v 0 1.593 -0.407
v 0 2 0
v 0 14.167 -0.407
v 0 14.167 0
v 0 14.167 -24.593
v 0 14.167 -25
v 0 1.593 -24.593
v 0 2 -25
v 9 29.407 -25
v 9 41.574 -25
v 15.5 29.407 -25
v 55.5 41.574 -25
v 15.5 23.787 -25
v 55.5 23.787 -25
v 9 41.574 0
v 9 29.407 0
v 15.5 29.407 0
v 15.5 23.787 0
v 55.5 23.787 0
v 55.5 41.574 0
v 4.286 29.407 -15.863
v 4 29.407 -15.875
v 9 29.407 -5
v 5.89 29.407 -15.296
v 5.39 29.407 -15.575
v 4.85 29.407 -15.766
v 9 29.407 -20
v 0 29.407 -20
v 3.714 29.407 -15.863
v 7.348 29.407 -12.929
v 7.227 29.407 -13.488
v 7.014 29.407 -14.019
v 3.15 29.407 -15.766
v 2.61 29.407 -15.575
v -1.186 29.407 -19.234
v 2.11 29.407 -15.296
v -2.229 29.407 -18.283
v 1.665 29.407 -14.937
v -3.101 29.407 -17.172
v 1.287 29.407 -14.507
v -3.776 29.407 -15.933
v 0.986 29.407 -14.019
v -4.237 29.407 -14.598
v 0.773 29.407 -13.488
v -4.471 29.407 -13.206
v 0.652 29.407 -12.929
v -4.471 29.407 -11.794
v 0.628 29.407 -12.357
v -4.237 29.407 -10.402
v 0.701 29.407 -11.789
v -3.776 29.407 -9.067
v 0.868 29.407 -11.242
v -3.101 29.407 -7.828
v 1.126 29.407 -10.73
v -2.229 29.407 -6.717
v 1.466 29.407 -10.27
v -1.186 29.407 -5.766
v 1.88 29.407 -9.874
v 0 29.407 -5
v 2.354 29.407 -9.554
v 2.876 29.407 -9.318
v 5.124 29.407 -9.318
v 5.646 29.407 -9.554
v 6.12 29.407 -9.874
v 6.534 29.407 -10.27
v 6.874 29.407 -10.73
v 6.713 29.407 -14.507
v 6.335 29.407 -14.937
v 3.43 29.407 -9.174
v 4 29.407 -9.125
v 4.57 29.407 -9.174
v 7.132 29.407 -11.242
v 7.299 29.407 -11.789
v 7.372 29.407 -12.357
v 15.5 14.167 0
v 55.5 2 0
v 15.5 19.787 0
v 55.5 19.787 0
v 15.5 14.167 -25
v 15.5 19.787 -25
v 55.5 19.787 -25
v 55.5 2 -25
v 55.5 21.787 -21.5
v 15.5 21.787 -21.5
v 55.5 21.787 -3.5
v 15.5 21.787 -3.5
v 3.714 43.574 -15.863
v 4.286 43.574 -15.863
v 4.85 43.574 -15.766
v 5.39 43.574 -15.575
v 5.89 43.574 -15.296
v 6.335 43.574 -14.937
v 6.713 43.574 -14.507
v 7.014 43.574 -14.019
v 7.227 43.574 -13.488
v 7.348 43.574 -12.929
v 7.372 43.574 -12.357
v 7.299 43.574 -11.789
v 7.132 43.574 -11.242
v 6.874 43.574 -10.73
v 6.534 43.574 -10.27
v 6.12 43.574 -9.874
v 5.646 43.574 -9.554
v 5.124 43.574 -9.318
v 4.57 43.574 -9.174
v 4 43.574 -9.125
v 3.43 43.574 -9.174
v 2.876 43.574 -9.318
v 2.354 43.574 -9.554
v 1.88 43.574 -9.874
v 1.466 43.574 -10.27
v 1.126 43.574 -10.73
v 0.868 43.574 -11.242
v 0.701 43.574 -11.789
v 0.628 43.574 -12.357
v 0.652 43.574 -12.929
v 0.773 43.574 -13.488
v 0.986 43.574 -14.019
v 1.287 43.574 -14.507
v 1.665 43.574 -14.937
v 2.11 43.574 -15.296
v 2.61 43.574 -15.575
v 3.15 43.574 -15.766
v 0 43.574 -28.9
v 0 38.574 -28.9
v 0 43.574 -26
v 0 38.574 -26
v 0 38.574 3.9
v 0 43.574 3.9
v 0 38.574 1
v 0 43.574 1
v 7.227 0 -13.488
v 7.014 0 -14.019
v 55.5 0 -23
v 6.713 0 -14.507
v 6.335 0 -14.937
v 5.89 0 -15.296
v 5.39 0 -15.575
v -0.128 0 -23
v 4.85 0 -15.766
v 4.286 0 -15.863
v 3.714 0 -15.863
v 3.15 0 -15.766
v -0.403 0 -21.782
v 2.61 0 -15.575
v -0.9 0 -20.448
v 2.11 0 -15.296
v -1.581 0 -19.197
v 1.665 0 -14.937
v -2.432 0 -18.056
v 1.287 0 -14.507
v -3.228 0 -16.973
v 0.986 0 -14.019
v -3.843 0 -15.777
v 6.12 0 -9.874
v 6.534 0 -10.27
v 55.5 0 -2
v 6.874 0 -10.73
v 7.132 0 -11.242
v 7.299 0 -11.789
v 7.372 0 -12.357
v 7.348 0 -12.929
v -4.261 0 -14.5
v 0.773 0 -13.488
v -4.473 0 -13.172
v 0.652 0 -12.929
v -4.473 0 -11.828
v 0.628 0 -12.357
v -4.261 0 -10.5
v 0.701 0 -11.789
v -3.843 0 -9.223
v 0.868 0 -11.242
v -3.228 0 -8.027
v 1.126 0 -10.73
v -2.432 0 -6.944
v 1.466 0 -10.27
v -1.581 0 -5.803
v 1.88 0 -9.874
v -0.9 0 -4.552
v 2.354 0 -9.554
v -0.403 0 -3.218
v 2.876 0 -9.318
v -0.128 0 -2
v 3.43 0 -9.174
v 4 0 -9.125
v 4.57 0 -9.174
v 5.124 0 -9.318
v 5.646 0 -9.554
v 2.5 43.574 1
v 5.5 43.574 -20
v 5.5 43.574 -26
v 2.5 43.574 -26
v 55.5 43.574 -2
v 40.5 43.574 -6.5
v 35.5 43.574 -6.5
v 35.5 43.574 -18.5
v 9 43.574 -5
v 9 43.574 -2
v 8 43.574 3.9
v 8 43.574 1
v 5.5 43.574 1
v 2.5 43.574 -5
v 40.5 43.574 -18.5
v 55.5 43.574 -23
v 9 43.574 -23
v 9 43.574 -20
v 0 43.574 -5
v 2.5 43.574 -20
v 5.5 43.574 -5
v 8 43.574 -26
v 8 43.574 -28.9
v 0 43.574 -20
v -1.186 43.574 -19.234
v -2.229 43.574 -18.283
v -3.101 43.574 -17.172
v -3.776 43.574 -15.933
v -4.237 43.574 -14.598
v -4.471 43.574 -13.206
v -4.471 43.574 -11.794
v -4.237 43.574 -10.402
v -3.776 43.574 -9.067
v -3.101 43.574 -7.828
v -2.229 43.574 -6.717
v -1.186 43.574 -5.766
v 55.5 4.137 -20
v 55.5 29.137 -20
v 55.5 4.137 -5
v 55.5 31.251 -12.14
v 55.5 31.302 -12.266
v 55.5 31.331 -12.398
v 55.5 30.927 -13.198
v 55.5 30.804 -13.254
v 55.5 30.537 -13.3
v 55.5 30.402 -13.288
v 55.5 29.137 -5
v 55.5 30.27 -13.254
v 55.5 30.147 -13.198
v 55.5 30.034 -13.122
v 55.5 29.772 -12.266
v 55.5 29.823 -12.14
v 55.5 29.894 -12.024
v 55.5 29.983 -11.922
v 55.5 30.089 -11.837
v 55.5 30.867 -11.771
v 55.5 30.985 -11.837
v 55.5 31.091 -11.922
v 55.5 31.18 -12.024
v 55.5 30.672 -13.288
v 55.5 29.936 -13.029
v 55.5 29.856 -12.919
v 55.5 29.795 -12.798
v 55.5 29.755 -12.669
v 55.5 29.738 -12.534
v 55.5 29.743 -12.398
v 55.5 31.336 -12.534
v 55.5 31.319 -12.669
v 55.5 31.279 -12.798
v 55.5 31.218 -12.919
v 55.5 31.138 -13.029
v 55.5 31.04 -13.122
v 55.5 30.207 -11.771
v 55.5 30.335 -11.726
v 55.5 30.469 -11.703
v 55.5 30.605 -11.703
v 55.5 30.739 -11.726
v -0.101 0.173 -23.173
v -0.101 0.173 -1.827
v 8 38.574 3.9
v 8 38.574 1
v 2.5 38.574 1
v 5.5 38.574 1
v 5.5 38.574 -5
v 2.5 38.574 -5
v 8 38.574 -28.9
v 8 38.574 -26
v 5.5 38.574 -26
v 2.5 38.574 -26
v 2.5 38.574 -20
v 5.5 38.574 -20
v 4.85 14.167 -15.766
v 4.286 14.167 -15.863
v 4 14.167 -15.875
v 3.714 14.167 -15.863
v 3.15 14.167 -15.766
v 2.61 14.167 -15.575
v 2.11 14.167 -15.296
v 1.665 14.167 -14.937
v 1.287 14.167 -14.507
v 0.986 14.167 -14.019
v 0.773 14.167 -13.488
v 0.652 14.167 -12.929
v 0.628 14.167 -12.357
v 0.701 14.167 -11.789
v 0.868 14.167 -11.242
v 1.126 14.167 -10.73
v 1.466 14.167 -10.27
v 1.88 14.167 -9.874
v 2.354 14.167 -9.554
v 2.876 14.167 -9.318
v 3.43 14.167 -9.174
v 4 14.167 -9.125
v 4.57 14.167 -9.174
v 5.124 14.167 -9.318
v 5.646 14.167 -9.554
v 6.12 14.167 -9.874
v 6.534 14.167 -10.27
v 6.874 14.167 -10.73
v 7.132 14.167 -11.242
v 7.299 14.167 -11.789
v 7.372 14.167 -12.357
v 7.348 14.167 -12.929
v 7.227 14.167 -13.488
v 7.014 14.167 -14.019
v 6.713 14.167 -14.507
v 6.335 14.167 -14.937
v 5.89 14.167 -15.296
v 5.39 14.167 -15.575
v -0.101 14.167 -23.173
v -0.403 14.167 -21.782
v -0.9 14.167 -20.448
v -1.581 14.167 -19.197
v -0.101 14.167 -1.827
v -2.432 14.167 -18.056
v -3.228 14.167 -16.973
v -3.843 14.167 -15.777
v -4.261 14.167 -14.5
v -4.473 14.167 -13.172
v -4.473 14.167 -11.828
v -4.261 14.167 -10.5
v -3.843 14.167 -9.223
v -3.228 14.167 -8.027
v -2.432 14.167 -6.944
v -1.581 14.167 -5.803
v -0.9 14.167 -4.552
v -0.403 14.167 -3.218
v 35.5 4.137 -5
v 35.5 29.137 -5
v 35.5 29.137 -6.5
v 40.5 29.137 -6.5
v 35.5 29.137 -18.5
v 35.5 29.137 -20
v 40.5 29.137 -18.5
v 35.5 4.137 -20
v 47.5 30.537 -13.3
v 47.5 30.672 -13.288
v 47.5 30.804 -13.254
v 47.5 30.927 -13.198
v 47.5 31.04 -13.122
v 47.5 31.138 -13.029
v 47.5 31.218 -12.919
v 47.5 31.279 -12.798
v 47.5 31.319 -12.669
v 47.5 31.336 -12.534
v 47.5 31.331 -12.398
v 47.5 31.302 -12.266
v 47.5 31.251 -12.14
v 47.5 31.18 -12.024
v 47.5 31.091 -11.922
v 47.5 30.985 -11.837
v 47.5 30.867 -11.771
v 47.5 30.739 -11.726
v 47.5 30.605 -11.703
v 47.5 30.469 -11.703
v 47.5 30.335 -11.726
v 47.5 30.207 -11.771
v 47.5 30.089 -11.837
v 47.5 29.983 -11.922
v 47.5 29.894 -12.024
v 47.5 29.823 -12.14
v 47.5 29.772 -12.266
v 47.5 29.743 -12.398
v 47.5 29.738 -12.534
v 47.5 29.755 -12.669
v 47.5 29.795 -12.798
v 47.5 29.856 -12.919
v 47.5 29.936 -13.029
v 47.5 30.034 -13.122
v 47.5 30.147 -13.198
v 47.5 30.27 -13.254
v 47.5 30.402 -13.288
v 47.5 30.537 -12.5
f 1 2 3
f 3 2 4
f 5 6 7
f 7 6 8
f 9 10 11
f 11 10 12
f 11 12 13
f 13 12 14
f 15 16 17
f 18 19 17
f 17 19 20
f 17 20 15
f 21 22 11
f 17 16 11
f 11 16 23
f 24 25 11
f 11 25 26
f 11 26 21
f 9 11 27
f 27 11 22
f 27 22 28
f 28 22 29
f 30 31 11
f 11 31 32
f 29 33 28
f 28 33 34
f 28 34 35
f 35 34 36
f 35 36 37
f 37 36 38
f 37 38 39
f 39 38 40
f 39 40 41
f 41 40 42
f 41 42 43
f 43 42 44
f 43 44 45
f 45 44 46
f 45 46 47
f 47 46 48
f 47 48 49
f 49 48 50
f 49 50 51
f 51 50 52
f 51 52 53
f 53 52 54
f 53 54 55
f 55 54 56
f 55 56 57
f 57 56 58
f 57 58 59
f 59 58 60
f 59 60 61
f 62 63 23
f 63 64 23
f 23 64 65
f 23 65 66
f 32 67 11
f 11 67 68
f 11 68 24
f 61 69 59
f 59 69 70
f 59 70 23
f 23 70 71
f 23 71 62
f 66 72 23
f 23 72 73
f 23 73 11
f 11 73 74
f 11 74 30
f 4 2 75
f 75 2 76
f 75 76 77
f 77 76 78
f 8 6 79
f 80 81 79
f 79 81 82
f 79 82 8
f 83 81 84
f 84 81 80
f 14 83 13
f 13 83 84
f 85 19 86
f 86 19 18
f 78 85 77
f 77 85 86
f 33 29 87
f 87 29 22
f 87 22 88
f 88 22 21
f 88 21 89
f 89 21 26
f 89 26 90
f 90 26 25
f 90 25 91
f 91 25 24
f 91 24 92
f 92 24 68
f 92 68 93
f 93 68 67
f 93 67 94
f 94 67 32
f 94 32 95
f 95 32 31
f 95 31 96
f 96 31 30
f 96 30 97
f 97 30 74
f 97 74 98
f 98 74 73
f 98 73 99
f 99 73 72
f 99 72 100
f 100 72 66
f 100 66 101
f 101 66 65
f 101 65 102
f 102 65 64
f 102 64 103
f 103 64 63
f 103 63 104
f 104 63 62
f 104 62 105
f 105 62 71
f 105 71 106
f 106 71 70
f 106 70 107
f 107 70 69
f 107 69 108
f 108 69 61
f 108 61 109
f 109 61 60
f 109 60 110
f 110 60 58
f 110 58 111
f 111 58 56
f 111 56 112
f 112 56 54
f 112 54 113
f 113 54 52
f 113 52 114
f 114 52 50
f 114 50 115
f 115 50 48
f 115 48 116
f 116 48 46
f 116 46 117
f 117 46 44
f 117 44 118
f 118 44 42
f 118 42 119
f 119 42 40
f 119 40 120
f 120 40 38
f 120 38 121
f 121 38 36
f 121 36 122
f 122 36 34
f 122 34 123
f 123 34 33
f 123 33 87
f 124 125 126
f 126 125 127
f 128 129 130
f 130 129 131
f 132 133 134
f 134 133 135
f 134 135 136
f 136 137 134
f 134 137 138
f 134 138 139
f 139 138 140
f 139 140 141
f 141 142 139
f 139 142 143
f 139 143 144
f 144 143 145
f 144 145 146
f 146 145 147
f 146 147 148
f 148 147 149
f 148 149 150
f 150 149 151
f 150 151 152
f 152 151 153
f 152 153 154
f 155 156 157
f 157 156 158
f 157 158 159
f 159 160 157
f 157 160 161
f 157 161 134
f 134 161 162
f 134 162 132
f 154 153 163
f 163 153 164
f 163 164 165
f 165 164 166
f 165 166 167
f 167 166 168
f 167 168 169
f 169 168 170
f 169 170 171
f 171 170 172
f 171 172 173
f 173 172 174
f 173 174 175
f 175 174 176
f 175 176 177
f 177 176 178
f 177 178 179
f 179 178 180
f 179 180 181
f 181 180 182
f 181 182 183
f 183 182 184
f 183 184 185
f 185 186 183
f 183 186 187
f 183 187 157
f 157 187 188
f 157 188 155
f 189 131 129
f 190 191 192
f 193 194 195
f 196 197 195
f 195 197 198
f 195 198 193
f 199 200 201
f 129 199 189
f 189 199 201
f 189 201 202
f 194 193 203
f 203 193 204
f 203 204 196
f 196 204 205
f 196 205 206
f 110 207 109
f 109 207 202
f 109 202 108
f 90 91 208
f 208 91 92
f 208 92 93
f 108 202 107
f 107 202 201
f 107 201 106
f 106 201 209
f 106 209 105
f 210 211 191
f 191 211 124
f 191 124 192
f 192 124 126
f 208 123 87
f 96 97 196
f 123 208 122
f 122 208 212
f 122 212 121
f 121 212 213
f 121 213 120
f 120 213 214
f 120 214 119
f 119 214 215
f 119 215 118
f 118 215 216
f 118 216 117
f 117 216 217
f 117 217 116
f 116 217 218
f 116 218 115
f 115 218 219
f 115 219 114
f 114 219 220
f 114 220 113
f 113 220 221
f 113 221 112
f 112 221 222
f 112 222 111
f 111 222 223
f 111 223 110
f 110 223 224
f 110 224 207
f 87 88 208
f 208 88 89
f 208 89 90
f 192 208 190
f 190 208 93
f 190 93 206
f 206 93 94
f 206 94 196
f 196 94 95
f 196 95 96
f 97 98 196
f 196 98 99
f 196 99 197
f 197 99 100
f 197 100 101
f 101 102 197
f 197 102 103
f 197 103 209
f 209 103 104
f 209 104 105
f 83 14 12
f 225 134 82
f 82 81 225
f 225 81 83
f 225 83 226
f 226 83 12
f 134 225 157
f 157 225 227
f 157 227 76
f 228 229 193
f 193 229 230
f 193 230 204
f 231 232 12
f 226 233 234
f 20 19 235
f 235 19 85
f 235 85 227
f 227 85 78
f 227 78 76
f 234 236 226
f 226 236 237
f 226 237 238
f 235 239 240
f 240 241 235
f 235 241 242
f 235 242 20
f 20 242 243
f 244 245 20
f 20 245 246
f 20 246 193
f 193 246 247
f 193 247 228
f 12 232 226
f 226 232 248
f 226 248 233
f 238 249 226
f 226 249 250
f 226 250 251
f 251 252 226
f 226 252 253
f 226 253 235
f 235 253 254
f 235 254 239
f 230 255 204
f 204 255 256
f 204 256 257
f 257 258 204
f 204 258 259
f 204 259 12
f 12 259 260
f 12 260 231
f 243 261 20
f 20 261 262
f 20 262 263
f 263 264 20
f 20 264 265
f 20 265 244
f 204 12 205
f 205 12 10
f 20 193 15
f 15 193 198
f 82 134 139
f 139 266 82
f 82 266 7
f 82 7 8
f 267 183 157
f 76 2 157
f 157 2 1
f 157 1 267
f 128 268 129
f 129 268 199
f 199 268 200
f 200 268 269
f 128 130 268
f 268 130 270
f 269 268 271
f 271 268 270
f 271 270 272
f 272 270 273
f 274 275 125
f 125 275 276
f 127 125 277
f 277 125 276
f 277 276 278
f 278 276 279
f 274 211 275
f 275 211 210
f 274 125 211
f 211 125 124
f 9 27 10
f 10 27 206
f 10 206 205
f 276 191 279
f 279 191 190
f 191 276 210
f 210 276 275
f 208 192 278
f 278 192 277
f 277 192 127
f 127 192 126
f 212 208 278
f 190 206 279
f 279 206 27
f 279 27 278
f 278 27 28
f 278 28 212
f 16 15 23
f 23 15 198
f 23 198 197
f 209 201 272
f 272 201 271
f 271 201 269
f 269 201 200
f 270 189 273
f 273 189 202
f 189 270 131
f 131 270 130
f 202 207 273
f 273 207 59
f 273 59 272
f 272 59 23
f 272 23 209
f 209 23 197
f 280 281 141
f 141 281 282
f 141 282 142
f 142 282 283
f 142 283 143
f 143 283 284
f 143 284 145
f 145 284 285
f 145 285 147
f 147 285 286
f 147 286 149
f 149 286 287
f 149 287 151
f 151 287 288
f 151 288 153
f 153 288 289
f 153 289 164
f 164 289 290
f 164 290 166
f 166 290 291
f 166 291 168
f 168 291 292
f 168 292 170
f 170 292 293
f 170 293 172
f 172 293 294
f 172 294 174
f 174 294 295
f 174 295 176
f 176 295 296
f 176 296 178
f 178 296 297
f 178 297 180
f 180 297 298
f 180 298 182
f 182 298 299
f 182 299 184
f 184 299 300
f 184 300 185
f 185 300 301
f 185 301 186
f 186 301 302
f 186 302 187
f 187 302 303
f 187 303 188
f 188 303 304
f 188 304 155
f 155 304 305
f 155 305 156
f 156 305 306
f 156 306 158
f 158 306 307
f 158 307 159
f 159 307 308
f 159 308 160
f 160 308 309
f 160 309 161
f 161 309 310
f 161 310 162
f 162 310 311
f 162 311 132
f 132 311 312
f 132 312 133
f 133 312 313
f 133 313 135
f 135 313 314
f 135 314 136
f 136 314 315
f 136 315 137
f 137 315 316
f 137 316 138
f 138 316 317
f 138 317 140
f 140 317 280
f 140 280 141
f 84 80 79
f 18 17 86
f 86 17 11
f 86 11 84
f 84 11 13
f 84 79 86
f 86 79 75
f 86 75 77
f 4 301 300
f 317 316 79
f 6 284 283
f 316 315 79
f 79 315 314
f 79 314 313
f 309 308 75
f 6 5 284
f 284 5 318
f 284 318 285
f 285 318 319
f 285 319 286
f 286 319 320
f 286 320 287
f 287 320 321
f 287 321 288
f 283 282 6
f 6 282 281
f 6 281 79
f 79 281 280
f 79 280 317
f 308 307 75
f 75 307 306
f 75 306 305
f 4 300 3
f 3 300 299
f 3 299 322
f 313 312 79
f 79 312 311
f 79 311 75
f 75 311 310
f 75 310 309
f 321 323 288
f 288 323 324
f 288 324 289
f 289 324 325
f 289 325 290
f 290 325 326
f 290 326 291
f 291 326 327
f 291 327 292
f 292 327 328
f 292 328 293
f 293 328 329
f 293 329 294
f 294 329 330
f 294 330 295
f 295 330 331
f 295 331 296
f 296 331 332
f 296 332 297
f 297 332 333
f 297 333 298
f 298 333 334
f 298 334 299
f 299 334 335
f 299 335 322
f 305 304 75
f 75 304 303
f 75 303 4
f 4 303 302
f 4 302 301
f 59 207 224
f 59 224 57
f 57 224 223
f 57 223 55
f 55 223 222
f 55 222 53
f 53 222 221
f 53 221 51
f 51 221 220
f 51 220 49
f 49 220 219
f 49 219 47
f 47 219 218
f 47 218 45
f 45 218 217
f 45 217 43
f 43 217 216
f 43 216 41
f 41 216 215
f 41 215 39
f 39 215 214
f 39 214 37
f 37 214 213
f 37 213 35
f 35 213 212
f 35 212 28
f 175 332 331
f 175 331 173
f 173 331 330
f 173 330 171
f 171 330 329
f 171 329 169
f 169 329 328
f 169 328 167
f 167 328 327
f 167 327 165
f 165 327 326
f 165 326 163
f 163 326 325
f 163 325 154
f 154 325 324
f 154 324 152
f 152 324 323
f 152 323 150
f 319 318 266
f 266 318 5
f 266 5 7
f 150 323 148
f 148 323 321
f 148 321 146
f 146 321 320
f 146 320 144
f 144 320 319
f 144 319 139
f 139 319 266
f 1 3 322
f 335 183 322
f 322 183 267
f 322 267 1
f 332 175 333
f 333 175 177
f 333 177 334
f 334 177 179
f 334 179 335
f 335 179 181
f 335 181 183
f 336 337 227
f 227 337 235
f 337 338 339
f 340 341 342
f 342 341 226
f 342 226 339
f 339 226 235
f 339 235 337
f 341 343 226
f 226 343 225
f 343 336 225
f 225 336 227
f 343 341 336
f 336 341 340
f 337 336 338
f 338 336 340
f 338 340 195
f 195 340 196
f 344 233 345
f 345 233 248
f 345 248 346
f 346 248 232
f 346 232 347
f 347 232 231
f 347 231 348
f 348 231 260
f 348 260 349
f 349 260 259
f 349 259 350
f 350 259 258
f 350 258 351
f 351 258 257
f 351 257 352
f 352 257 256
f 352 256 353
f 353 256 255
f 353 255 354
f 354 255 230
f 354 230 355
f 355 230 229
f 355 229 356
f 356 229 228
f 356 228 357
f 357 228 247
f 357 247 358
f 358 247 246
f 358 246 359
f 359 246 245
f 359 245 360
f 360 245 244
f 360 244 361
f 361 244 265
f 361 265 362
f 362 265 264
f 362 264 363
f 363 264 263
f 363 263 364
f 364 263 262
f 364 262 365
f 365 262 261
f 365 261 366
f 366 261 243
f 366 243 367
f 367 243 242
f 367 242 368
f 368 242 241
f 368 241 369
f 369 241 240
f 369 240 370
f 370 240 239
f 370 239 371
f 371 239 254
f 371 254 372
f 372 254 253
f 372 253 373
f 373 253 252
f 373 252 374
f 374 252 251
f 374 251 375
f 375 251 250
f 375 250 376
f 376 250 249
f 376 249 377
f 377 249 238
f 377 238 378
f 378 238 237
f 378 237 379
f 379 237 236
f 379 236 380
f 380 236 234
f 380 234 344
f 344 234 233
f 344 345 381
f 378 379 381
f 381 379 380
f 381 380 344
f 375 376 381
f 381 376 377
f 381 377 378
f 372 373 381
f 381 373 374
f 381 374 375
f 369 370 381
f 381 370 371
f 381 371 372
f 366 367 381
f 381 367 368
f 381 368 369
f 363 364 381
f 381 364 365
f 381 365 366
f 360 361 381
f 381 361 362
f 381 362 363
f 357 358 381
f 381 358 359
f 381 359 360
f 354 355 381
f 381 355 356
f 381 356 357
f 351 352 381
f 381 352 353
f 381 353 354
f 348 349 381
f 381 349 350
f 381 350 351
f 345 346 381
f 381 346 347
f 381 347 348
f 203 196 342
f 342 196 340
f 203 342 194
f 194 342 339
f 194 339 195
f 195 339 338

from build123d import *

# Parameters (mm, degrees)
BOSS_EXTRUDE1_DEPTH = 55.5
CHAMFER1_SIZE       = 2
SKETCH4_W           = 8
SKETCH4_H           = 32.8
BOSS_EXTRUDE2_DEPTH = 5
SKETCH7_W           = 3.5
SKETCH7_H           = 6
CUT_EXTRUDE5_DEPTH  = 10
SKETCH5_R           = 3.375
CUT_EXTRUDE3_DEPTH  = 77.250596562
SKETCH6_R           = 3.375
CUT_EXTRUDE4_DEPTH  = 7.62
SKETCH8_W           = 9
SKETCH8_H           = 5
CUT_EXTRUDE6_DEPTH  = 9.167
BOSS_EXTRUDE3_DEPTH = 14.167
BOSS_EXTRUDE4_START = -29.407
BOSS_EXTRUDE4_DEPTH = 14.167
FILLET1_R           = 10
SKETCH10_W          = 15
SKETCH10_H          = 25
CUT_EXTRUDE7_DEPTH  = 20
SKETCH11_R          = 0.8
CUT_EXTRUDE8_DEPTH  = 8
SKETCH12_W          = 5
SKETCH12_H          = 12
CUT_EXTRUDE9_DEPTH  = 14.437


with BuildPart() as part:
    # Sketch1 → Boss-Extrude1 (new body)
    with BuildSketch(Plane(origin=(0, 0, 0), x_dir=(0, 0, -1), z_dir=(1, 0, 0))):
        Polygon((0, 0), (25, 0), (25, 19.787), (21.5, 21.787), (25, 23.787), (25, 43.574), (0, 43.574), (0, 23.787), (3.5, 21.787), (0, 19.787), align=None)
    extrude(amount=BOSS_EXTRUDE1_DEPTH)

    # Chamfer1
    chamfer1_edges = [part.edges().sort_by_distance(p)[0] for p in [
        (27.75, 43.574, 0),
        (27.75, 43.574, -25),
        (27.75, 0, -25),
        (27.75, 0, 0),
    ]]
    chamfer(chamfer1_edges, length=CHAMFER1_SIZE)

    # Sketch4 → Boss-Extrude2 (add)
    with BuildSketch(Plane(origin=(0, 43.574, 0), x_dir=(1, 0, 0), z_dir=(0, 1, 0))):
        with Locations((4, 12.5)):
            Rectangle(SKETCH4_W, SKETCH4_H)
    extrude(amount=-BOSS_EXTRUDE2_DEPTH)

    # Sketch7 → Cut-Extrude5 (cut)
    with BuildSketch(Plane(origin=(0, 43.574, 0), x_dir=(1, 0, 0), z_dir=(0, 1, 0))):
        with Locations((7.25, 2)):
            Rectangle(SKETCH7_W, SKETCH7_H)
        with Locations((7.25, 23)):
            Rectangle(SKETCH7_W, SKETCH7_H)
        with Locations((0.75, 2)):
            Rectangle(SKETCH7_W, SKETCH7_H)
        with Locations((0.75, 23)):
            Rectangle(SKETCH7_W, SKETCH7_H)
    extrude(amount=-CUT_EXTRUDE5_DEPTH, mode=Mode.SUBTRACT)

    # Sketch5 → Cut-Extrude3 (cut, through all)
    with BuildSketch(Plane(origin=(0, 43.574, 0), x_dir=(1, 0, 0), z_dir=(0, 1, 0))):
        with Locations(Location((4, 12.5, 0), (0, 0, 270))):
            Circle(SKETCH5_R)
    extrude(amount=-CUT_EXTRUDE3_DEPTH, mode=Mode.SUBTRACT)

    # Sketch6 → Cut-Extrude4 (cut, symmetric)
    with BuildSketch(Plane(origin=(0, 21.787, 0), x_dir=(-1, 0, 0), z_dir=(0, -1, 0))):
        Polygon((-4, 30), (4.5, 30), (4.5, -5), (-4, -5), (-15.5, -5), (-15.5, 30), align=None)
        with Locations(Location((-4, 12.5, 0), (0, 0, 270))):
            Circle(SKETCH6_R, mode=Mode.SUBTRACT)
    extrude(amount=CUT_EXTRUDE4_DEPTH, both=True, mode=Mode.SUBTRACT)

    # Sketch8 → Cut-Extrude6 (cut)
    with BuildSketch(Plane.XZ.offset(-29.407)):
        with Locations((4.5, -22.5)):
            Rectangle(SKETCH8_W, SKETCH8_H)
        with Locations((4.5, -2.5)):
            Rectangle(SKETCH8_W, SKETCH8_H)
    extrude(amount=-CUT_EXTRUDE6_DEPTH, mode=Mode.SUBTRACT)

    # Sketch9 → Boss-Extrude3 (add)
    with BuildSketch(Plane(origin=(0, 43.574, 0), x_dir=(1, 0, 0), z_dir=(0, 1, 0))):
        with BuildLine():
            Line((0, 20), (0, 5))
            ThreePointArc((0, 5), (-4.5, 12.5), (0, 20))
        make_face()
    extrude(amount=-BOSS_EXTRUDE3_DEPTH)

    # Sketch9<2> → Boss-Extrude4 (add)
    with BuildSketch(Plane(origin=(0, 43.574, 0), x_dir=(1, 0, 0), z_dir=(0, 1, 0)).offset(BOSS_EXTRUDE4_START)):
        with BuildLine():
            Line((0, 20), (0, 5))
            ThreePointArc((0, 5), (-4.5, 12.5), (0, 20))
        make_face()
    extrude(amount=-BOSS_EXTRUDE4_DEPTH)

    # Fillet1
    fillet1_edges = [part.edges().sort_by_distance(p)[0] for p in [
        (0, 7.0835, -20),
        (0, 7.0835, -5),
    ]]
    fillet(fillet1_edges, radius=FILLET1_R)

    # Sketch10 → Cut-Extrude7 (cut)
    with BuildSketch(Plane(origin=(55.5, 0, 0), x_dir=(0, 0, -1), z_dir=(1, 0, 0))):
        with Locations((12.5, 16.637)):
            Rectangle(SKETCH10_W, SKETCH10_H)
    extrude(amount=-CUT_EXTRUDE7_DEPTH, mode=Mode.SUBTRACT)

    # Sketch11 → Cut-Extrude8 (cut)
    with BuildSketch(Plane(origin=(55.5, 0, 0), x_dir=(0, 0, -1), z_dir=(1, 0, 0))):
        with Locations((12.5, 30.537)):
            Circle(SKETCH11_R)
    extrude(amount=-CUT_EXTRUDE8_DEPTH, mode=Mode.SUBTRACT)

    # Sketch12 → Cut-Extrude9 (cut)
    with BuildSketch(Plane(origin=(0, 43.574, 0), x_dir=(1, 0, 0), z_dir=(0, 1, 0))):
        with Locations((38, 12.5)):
            Rectangle(SKETCH12_W, SKETCH12_H)
    extrude(amount=-CUT_EXTRUDE9_DEPTH, mode=Mode.SUBTRACT)


solid = part.part
